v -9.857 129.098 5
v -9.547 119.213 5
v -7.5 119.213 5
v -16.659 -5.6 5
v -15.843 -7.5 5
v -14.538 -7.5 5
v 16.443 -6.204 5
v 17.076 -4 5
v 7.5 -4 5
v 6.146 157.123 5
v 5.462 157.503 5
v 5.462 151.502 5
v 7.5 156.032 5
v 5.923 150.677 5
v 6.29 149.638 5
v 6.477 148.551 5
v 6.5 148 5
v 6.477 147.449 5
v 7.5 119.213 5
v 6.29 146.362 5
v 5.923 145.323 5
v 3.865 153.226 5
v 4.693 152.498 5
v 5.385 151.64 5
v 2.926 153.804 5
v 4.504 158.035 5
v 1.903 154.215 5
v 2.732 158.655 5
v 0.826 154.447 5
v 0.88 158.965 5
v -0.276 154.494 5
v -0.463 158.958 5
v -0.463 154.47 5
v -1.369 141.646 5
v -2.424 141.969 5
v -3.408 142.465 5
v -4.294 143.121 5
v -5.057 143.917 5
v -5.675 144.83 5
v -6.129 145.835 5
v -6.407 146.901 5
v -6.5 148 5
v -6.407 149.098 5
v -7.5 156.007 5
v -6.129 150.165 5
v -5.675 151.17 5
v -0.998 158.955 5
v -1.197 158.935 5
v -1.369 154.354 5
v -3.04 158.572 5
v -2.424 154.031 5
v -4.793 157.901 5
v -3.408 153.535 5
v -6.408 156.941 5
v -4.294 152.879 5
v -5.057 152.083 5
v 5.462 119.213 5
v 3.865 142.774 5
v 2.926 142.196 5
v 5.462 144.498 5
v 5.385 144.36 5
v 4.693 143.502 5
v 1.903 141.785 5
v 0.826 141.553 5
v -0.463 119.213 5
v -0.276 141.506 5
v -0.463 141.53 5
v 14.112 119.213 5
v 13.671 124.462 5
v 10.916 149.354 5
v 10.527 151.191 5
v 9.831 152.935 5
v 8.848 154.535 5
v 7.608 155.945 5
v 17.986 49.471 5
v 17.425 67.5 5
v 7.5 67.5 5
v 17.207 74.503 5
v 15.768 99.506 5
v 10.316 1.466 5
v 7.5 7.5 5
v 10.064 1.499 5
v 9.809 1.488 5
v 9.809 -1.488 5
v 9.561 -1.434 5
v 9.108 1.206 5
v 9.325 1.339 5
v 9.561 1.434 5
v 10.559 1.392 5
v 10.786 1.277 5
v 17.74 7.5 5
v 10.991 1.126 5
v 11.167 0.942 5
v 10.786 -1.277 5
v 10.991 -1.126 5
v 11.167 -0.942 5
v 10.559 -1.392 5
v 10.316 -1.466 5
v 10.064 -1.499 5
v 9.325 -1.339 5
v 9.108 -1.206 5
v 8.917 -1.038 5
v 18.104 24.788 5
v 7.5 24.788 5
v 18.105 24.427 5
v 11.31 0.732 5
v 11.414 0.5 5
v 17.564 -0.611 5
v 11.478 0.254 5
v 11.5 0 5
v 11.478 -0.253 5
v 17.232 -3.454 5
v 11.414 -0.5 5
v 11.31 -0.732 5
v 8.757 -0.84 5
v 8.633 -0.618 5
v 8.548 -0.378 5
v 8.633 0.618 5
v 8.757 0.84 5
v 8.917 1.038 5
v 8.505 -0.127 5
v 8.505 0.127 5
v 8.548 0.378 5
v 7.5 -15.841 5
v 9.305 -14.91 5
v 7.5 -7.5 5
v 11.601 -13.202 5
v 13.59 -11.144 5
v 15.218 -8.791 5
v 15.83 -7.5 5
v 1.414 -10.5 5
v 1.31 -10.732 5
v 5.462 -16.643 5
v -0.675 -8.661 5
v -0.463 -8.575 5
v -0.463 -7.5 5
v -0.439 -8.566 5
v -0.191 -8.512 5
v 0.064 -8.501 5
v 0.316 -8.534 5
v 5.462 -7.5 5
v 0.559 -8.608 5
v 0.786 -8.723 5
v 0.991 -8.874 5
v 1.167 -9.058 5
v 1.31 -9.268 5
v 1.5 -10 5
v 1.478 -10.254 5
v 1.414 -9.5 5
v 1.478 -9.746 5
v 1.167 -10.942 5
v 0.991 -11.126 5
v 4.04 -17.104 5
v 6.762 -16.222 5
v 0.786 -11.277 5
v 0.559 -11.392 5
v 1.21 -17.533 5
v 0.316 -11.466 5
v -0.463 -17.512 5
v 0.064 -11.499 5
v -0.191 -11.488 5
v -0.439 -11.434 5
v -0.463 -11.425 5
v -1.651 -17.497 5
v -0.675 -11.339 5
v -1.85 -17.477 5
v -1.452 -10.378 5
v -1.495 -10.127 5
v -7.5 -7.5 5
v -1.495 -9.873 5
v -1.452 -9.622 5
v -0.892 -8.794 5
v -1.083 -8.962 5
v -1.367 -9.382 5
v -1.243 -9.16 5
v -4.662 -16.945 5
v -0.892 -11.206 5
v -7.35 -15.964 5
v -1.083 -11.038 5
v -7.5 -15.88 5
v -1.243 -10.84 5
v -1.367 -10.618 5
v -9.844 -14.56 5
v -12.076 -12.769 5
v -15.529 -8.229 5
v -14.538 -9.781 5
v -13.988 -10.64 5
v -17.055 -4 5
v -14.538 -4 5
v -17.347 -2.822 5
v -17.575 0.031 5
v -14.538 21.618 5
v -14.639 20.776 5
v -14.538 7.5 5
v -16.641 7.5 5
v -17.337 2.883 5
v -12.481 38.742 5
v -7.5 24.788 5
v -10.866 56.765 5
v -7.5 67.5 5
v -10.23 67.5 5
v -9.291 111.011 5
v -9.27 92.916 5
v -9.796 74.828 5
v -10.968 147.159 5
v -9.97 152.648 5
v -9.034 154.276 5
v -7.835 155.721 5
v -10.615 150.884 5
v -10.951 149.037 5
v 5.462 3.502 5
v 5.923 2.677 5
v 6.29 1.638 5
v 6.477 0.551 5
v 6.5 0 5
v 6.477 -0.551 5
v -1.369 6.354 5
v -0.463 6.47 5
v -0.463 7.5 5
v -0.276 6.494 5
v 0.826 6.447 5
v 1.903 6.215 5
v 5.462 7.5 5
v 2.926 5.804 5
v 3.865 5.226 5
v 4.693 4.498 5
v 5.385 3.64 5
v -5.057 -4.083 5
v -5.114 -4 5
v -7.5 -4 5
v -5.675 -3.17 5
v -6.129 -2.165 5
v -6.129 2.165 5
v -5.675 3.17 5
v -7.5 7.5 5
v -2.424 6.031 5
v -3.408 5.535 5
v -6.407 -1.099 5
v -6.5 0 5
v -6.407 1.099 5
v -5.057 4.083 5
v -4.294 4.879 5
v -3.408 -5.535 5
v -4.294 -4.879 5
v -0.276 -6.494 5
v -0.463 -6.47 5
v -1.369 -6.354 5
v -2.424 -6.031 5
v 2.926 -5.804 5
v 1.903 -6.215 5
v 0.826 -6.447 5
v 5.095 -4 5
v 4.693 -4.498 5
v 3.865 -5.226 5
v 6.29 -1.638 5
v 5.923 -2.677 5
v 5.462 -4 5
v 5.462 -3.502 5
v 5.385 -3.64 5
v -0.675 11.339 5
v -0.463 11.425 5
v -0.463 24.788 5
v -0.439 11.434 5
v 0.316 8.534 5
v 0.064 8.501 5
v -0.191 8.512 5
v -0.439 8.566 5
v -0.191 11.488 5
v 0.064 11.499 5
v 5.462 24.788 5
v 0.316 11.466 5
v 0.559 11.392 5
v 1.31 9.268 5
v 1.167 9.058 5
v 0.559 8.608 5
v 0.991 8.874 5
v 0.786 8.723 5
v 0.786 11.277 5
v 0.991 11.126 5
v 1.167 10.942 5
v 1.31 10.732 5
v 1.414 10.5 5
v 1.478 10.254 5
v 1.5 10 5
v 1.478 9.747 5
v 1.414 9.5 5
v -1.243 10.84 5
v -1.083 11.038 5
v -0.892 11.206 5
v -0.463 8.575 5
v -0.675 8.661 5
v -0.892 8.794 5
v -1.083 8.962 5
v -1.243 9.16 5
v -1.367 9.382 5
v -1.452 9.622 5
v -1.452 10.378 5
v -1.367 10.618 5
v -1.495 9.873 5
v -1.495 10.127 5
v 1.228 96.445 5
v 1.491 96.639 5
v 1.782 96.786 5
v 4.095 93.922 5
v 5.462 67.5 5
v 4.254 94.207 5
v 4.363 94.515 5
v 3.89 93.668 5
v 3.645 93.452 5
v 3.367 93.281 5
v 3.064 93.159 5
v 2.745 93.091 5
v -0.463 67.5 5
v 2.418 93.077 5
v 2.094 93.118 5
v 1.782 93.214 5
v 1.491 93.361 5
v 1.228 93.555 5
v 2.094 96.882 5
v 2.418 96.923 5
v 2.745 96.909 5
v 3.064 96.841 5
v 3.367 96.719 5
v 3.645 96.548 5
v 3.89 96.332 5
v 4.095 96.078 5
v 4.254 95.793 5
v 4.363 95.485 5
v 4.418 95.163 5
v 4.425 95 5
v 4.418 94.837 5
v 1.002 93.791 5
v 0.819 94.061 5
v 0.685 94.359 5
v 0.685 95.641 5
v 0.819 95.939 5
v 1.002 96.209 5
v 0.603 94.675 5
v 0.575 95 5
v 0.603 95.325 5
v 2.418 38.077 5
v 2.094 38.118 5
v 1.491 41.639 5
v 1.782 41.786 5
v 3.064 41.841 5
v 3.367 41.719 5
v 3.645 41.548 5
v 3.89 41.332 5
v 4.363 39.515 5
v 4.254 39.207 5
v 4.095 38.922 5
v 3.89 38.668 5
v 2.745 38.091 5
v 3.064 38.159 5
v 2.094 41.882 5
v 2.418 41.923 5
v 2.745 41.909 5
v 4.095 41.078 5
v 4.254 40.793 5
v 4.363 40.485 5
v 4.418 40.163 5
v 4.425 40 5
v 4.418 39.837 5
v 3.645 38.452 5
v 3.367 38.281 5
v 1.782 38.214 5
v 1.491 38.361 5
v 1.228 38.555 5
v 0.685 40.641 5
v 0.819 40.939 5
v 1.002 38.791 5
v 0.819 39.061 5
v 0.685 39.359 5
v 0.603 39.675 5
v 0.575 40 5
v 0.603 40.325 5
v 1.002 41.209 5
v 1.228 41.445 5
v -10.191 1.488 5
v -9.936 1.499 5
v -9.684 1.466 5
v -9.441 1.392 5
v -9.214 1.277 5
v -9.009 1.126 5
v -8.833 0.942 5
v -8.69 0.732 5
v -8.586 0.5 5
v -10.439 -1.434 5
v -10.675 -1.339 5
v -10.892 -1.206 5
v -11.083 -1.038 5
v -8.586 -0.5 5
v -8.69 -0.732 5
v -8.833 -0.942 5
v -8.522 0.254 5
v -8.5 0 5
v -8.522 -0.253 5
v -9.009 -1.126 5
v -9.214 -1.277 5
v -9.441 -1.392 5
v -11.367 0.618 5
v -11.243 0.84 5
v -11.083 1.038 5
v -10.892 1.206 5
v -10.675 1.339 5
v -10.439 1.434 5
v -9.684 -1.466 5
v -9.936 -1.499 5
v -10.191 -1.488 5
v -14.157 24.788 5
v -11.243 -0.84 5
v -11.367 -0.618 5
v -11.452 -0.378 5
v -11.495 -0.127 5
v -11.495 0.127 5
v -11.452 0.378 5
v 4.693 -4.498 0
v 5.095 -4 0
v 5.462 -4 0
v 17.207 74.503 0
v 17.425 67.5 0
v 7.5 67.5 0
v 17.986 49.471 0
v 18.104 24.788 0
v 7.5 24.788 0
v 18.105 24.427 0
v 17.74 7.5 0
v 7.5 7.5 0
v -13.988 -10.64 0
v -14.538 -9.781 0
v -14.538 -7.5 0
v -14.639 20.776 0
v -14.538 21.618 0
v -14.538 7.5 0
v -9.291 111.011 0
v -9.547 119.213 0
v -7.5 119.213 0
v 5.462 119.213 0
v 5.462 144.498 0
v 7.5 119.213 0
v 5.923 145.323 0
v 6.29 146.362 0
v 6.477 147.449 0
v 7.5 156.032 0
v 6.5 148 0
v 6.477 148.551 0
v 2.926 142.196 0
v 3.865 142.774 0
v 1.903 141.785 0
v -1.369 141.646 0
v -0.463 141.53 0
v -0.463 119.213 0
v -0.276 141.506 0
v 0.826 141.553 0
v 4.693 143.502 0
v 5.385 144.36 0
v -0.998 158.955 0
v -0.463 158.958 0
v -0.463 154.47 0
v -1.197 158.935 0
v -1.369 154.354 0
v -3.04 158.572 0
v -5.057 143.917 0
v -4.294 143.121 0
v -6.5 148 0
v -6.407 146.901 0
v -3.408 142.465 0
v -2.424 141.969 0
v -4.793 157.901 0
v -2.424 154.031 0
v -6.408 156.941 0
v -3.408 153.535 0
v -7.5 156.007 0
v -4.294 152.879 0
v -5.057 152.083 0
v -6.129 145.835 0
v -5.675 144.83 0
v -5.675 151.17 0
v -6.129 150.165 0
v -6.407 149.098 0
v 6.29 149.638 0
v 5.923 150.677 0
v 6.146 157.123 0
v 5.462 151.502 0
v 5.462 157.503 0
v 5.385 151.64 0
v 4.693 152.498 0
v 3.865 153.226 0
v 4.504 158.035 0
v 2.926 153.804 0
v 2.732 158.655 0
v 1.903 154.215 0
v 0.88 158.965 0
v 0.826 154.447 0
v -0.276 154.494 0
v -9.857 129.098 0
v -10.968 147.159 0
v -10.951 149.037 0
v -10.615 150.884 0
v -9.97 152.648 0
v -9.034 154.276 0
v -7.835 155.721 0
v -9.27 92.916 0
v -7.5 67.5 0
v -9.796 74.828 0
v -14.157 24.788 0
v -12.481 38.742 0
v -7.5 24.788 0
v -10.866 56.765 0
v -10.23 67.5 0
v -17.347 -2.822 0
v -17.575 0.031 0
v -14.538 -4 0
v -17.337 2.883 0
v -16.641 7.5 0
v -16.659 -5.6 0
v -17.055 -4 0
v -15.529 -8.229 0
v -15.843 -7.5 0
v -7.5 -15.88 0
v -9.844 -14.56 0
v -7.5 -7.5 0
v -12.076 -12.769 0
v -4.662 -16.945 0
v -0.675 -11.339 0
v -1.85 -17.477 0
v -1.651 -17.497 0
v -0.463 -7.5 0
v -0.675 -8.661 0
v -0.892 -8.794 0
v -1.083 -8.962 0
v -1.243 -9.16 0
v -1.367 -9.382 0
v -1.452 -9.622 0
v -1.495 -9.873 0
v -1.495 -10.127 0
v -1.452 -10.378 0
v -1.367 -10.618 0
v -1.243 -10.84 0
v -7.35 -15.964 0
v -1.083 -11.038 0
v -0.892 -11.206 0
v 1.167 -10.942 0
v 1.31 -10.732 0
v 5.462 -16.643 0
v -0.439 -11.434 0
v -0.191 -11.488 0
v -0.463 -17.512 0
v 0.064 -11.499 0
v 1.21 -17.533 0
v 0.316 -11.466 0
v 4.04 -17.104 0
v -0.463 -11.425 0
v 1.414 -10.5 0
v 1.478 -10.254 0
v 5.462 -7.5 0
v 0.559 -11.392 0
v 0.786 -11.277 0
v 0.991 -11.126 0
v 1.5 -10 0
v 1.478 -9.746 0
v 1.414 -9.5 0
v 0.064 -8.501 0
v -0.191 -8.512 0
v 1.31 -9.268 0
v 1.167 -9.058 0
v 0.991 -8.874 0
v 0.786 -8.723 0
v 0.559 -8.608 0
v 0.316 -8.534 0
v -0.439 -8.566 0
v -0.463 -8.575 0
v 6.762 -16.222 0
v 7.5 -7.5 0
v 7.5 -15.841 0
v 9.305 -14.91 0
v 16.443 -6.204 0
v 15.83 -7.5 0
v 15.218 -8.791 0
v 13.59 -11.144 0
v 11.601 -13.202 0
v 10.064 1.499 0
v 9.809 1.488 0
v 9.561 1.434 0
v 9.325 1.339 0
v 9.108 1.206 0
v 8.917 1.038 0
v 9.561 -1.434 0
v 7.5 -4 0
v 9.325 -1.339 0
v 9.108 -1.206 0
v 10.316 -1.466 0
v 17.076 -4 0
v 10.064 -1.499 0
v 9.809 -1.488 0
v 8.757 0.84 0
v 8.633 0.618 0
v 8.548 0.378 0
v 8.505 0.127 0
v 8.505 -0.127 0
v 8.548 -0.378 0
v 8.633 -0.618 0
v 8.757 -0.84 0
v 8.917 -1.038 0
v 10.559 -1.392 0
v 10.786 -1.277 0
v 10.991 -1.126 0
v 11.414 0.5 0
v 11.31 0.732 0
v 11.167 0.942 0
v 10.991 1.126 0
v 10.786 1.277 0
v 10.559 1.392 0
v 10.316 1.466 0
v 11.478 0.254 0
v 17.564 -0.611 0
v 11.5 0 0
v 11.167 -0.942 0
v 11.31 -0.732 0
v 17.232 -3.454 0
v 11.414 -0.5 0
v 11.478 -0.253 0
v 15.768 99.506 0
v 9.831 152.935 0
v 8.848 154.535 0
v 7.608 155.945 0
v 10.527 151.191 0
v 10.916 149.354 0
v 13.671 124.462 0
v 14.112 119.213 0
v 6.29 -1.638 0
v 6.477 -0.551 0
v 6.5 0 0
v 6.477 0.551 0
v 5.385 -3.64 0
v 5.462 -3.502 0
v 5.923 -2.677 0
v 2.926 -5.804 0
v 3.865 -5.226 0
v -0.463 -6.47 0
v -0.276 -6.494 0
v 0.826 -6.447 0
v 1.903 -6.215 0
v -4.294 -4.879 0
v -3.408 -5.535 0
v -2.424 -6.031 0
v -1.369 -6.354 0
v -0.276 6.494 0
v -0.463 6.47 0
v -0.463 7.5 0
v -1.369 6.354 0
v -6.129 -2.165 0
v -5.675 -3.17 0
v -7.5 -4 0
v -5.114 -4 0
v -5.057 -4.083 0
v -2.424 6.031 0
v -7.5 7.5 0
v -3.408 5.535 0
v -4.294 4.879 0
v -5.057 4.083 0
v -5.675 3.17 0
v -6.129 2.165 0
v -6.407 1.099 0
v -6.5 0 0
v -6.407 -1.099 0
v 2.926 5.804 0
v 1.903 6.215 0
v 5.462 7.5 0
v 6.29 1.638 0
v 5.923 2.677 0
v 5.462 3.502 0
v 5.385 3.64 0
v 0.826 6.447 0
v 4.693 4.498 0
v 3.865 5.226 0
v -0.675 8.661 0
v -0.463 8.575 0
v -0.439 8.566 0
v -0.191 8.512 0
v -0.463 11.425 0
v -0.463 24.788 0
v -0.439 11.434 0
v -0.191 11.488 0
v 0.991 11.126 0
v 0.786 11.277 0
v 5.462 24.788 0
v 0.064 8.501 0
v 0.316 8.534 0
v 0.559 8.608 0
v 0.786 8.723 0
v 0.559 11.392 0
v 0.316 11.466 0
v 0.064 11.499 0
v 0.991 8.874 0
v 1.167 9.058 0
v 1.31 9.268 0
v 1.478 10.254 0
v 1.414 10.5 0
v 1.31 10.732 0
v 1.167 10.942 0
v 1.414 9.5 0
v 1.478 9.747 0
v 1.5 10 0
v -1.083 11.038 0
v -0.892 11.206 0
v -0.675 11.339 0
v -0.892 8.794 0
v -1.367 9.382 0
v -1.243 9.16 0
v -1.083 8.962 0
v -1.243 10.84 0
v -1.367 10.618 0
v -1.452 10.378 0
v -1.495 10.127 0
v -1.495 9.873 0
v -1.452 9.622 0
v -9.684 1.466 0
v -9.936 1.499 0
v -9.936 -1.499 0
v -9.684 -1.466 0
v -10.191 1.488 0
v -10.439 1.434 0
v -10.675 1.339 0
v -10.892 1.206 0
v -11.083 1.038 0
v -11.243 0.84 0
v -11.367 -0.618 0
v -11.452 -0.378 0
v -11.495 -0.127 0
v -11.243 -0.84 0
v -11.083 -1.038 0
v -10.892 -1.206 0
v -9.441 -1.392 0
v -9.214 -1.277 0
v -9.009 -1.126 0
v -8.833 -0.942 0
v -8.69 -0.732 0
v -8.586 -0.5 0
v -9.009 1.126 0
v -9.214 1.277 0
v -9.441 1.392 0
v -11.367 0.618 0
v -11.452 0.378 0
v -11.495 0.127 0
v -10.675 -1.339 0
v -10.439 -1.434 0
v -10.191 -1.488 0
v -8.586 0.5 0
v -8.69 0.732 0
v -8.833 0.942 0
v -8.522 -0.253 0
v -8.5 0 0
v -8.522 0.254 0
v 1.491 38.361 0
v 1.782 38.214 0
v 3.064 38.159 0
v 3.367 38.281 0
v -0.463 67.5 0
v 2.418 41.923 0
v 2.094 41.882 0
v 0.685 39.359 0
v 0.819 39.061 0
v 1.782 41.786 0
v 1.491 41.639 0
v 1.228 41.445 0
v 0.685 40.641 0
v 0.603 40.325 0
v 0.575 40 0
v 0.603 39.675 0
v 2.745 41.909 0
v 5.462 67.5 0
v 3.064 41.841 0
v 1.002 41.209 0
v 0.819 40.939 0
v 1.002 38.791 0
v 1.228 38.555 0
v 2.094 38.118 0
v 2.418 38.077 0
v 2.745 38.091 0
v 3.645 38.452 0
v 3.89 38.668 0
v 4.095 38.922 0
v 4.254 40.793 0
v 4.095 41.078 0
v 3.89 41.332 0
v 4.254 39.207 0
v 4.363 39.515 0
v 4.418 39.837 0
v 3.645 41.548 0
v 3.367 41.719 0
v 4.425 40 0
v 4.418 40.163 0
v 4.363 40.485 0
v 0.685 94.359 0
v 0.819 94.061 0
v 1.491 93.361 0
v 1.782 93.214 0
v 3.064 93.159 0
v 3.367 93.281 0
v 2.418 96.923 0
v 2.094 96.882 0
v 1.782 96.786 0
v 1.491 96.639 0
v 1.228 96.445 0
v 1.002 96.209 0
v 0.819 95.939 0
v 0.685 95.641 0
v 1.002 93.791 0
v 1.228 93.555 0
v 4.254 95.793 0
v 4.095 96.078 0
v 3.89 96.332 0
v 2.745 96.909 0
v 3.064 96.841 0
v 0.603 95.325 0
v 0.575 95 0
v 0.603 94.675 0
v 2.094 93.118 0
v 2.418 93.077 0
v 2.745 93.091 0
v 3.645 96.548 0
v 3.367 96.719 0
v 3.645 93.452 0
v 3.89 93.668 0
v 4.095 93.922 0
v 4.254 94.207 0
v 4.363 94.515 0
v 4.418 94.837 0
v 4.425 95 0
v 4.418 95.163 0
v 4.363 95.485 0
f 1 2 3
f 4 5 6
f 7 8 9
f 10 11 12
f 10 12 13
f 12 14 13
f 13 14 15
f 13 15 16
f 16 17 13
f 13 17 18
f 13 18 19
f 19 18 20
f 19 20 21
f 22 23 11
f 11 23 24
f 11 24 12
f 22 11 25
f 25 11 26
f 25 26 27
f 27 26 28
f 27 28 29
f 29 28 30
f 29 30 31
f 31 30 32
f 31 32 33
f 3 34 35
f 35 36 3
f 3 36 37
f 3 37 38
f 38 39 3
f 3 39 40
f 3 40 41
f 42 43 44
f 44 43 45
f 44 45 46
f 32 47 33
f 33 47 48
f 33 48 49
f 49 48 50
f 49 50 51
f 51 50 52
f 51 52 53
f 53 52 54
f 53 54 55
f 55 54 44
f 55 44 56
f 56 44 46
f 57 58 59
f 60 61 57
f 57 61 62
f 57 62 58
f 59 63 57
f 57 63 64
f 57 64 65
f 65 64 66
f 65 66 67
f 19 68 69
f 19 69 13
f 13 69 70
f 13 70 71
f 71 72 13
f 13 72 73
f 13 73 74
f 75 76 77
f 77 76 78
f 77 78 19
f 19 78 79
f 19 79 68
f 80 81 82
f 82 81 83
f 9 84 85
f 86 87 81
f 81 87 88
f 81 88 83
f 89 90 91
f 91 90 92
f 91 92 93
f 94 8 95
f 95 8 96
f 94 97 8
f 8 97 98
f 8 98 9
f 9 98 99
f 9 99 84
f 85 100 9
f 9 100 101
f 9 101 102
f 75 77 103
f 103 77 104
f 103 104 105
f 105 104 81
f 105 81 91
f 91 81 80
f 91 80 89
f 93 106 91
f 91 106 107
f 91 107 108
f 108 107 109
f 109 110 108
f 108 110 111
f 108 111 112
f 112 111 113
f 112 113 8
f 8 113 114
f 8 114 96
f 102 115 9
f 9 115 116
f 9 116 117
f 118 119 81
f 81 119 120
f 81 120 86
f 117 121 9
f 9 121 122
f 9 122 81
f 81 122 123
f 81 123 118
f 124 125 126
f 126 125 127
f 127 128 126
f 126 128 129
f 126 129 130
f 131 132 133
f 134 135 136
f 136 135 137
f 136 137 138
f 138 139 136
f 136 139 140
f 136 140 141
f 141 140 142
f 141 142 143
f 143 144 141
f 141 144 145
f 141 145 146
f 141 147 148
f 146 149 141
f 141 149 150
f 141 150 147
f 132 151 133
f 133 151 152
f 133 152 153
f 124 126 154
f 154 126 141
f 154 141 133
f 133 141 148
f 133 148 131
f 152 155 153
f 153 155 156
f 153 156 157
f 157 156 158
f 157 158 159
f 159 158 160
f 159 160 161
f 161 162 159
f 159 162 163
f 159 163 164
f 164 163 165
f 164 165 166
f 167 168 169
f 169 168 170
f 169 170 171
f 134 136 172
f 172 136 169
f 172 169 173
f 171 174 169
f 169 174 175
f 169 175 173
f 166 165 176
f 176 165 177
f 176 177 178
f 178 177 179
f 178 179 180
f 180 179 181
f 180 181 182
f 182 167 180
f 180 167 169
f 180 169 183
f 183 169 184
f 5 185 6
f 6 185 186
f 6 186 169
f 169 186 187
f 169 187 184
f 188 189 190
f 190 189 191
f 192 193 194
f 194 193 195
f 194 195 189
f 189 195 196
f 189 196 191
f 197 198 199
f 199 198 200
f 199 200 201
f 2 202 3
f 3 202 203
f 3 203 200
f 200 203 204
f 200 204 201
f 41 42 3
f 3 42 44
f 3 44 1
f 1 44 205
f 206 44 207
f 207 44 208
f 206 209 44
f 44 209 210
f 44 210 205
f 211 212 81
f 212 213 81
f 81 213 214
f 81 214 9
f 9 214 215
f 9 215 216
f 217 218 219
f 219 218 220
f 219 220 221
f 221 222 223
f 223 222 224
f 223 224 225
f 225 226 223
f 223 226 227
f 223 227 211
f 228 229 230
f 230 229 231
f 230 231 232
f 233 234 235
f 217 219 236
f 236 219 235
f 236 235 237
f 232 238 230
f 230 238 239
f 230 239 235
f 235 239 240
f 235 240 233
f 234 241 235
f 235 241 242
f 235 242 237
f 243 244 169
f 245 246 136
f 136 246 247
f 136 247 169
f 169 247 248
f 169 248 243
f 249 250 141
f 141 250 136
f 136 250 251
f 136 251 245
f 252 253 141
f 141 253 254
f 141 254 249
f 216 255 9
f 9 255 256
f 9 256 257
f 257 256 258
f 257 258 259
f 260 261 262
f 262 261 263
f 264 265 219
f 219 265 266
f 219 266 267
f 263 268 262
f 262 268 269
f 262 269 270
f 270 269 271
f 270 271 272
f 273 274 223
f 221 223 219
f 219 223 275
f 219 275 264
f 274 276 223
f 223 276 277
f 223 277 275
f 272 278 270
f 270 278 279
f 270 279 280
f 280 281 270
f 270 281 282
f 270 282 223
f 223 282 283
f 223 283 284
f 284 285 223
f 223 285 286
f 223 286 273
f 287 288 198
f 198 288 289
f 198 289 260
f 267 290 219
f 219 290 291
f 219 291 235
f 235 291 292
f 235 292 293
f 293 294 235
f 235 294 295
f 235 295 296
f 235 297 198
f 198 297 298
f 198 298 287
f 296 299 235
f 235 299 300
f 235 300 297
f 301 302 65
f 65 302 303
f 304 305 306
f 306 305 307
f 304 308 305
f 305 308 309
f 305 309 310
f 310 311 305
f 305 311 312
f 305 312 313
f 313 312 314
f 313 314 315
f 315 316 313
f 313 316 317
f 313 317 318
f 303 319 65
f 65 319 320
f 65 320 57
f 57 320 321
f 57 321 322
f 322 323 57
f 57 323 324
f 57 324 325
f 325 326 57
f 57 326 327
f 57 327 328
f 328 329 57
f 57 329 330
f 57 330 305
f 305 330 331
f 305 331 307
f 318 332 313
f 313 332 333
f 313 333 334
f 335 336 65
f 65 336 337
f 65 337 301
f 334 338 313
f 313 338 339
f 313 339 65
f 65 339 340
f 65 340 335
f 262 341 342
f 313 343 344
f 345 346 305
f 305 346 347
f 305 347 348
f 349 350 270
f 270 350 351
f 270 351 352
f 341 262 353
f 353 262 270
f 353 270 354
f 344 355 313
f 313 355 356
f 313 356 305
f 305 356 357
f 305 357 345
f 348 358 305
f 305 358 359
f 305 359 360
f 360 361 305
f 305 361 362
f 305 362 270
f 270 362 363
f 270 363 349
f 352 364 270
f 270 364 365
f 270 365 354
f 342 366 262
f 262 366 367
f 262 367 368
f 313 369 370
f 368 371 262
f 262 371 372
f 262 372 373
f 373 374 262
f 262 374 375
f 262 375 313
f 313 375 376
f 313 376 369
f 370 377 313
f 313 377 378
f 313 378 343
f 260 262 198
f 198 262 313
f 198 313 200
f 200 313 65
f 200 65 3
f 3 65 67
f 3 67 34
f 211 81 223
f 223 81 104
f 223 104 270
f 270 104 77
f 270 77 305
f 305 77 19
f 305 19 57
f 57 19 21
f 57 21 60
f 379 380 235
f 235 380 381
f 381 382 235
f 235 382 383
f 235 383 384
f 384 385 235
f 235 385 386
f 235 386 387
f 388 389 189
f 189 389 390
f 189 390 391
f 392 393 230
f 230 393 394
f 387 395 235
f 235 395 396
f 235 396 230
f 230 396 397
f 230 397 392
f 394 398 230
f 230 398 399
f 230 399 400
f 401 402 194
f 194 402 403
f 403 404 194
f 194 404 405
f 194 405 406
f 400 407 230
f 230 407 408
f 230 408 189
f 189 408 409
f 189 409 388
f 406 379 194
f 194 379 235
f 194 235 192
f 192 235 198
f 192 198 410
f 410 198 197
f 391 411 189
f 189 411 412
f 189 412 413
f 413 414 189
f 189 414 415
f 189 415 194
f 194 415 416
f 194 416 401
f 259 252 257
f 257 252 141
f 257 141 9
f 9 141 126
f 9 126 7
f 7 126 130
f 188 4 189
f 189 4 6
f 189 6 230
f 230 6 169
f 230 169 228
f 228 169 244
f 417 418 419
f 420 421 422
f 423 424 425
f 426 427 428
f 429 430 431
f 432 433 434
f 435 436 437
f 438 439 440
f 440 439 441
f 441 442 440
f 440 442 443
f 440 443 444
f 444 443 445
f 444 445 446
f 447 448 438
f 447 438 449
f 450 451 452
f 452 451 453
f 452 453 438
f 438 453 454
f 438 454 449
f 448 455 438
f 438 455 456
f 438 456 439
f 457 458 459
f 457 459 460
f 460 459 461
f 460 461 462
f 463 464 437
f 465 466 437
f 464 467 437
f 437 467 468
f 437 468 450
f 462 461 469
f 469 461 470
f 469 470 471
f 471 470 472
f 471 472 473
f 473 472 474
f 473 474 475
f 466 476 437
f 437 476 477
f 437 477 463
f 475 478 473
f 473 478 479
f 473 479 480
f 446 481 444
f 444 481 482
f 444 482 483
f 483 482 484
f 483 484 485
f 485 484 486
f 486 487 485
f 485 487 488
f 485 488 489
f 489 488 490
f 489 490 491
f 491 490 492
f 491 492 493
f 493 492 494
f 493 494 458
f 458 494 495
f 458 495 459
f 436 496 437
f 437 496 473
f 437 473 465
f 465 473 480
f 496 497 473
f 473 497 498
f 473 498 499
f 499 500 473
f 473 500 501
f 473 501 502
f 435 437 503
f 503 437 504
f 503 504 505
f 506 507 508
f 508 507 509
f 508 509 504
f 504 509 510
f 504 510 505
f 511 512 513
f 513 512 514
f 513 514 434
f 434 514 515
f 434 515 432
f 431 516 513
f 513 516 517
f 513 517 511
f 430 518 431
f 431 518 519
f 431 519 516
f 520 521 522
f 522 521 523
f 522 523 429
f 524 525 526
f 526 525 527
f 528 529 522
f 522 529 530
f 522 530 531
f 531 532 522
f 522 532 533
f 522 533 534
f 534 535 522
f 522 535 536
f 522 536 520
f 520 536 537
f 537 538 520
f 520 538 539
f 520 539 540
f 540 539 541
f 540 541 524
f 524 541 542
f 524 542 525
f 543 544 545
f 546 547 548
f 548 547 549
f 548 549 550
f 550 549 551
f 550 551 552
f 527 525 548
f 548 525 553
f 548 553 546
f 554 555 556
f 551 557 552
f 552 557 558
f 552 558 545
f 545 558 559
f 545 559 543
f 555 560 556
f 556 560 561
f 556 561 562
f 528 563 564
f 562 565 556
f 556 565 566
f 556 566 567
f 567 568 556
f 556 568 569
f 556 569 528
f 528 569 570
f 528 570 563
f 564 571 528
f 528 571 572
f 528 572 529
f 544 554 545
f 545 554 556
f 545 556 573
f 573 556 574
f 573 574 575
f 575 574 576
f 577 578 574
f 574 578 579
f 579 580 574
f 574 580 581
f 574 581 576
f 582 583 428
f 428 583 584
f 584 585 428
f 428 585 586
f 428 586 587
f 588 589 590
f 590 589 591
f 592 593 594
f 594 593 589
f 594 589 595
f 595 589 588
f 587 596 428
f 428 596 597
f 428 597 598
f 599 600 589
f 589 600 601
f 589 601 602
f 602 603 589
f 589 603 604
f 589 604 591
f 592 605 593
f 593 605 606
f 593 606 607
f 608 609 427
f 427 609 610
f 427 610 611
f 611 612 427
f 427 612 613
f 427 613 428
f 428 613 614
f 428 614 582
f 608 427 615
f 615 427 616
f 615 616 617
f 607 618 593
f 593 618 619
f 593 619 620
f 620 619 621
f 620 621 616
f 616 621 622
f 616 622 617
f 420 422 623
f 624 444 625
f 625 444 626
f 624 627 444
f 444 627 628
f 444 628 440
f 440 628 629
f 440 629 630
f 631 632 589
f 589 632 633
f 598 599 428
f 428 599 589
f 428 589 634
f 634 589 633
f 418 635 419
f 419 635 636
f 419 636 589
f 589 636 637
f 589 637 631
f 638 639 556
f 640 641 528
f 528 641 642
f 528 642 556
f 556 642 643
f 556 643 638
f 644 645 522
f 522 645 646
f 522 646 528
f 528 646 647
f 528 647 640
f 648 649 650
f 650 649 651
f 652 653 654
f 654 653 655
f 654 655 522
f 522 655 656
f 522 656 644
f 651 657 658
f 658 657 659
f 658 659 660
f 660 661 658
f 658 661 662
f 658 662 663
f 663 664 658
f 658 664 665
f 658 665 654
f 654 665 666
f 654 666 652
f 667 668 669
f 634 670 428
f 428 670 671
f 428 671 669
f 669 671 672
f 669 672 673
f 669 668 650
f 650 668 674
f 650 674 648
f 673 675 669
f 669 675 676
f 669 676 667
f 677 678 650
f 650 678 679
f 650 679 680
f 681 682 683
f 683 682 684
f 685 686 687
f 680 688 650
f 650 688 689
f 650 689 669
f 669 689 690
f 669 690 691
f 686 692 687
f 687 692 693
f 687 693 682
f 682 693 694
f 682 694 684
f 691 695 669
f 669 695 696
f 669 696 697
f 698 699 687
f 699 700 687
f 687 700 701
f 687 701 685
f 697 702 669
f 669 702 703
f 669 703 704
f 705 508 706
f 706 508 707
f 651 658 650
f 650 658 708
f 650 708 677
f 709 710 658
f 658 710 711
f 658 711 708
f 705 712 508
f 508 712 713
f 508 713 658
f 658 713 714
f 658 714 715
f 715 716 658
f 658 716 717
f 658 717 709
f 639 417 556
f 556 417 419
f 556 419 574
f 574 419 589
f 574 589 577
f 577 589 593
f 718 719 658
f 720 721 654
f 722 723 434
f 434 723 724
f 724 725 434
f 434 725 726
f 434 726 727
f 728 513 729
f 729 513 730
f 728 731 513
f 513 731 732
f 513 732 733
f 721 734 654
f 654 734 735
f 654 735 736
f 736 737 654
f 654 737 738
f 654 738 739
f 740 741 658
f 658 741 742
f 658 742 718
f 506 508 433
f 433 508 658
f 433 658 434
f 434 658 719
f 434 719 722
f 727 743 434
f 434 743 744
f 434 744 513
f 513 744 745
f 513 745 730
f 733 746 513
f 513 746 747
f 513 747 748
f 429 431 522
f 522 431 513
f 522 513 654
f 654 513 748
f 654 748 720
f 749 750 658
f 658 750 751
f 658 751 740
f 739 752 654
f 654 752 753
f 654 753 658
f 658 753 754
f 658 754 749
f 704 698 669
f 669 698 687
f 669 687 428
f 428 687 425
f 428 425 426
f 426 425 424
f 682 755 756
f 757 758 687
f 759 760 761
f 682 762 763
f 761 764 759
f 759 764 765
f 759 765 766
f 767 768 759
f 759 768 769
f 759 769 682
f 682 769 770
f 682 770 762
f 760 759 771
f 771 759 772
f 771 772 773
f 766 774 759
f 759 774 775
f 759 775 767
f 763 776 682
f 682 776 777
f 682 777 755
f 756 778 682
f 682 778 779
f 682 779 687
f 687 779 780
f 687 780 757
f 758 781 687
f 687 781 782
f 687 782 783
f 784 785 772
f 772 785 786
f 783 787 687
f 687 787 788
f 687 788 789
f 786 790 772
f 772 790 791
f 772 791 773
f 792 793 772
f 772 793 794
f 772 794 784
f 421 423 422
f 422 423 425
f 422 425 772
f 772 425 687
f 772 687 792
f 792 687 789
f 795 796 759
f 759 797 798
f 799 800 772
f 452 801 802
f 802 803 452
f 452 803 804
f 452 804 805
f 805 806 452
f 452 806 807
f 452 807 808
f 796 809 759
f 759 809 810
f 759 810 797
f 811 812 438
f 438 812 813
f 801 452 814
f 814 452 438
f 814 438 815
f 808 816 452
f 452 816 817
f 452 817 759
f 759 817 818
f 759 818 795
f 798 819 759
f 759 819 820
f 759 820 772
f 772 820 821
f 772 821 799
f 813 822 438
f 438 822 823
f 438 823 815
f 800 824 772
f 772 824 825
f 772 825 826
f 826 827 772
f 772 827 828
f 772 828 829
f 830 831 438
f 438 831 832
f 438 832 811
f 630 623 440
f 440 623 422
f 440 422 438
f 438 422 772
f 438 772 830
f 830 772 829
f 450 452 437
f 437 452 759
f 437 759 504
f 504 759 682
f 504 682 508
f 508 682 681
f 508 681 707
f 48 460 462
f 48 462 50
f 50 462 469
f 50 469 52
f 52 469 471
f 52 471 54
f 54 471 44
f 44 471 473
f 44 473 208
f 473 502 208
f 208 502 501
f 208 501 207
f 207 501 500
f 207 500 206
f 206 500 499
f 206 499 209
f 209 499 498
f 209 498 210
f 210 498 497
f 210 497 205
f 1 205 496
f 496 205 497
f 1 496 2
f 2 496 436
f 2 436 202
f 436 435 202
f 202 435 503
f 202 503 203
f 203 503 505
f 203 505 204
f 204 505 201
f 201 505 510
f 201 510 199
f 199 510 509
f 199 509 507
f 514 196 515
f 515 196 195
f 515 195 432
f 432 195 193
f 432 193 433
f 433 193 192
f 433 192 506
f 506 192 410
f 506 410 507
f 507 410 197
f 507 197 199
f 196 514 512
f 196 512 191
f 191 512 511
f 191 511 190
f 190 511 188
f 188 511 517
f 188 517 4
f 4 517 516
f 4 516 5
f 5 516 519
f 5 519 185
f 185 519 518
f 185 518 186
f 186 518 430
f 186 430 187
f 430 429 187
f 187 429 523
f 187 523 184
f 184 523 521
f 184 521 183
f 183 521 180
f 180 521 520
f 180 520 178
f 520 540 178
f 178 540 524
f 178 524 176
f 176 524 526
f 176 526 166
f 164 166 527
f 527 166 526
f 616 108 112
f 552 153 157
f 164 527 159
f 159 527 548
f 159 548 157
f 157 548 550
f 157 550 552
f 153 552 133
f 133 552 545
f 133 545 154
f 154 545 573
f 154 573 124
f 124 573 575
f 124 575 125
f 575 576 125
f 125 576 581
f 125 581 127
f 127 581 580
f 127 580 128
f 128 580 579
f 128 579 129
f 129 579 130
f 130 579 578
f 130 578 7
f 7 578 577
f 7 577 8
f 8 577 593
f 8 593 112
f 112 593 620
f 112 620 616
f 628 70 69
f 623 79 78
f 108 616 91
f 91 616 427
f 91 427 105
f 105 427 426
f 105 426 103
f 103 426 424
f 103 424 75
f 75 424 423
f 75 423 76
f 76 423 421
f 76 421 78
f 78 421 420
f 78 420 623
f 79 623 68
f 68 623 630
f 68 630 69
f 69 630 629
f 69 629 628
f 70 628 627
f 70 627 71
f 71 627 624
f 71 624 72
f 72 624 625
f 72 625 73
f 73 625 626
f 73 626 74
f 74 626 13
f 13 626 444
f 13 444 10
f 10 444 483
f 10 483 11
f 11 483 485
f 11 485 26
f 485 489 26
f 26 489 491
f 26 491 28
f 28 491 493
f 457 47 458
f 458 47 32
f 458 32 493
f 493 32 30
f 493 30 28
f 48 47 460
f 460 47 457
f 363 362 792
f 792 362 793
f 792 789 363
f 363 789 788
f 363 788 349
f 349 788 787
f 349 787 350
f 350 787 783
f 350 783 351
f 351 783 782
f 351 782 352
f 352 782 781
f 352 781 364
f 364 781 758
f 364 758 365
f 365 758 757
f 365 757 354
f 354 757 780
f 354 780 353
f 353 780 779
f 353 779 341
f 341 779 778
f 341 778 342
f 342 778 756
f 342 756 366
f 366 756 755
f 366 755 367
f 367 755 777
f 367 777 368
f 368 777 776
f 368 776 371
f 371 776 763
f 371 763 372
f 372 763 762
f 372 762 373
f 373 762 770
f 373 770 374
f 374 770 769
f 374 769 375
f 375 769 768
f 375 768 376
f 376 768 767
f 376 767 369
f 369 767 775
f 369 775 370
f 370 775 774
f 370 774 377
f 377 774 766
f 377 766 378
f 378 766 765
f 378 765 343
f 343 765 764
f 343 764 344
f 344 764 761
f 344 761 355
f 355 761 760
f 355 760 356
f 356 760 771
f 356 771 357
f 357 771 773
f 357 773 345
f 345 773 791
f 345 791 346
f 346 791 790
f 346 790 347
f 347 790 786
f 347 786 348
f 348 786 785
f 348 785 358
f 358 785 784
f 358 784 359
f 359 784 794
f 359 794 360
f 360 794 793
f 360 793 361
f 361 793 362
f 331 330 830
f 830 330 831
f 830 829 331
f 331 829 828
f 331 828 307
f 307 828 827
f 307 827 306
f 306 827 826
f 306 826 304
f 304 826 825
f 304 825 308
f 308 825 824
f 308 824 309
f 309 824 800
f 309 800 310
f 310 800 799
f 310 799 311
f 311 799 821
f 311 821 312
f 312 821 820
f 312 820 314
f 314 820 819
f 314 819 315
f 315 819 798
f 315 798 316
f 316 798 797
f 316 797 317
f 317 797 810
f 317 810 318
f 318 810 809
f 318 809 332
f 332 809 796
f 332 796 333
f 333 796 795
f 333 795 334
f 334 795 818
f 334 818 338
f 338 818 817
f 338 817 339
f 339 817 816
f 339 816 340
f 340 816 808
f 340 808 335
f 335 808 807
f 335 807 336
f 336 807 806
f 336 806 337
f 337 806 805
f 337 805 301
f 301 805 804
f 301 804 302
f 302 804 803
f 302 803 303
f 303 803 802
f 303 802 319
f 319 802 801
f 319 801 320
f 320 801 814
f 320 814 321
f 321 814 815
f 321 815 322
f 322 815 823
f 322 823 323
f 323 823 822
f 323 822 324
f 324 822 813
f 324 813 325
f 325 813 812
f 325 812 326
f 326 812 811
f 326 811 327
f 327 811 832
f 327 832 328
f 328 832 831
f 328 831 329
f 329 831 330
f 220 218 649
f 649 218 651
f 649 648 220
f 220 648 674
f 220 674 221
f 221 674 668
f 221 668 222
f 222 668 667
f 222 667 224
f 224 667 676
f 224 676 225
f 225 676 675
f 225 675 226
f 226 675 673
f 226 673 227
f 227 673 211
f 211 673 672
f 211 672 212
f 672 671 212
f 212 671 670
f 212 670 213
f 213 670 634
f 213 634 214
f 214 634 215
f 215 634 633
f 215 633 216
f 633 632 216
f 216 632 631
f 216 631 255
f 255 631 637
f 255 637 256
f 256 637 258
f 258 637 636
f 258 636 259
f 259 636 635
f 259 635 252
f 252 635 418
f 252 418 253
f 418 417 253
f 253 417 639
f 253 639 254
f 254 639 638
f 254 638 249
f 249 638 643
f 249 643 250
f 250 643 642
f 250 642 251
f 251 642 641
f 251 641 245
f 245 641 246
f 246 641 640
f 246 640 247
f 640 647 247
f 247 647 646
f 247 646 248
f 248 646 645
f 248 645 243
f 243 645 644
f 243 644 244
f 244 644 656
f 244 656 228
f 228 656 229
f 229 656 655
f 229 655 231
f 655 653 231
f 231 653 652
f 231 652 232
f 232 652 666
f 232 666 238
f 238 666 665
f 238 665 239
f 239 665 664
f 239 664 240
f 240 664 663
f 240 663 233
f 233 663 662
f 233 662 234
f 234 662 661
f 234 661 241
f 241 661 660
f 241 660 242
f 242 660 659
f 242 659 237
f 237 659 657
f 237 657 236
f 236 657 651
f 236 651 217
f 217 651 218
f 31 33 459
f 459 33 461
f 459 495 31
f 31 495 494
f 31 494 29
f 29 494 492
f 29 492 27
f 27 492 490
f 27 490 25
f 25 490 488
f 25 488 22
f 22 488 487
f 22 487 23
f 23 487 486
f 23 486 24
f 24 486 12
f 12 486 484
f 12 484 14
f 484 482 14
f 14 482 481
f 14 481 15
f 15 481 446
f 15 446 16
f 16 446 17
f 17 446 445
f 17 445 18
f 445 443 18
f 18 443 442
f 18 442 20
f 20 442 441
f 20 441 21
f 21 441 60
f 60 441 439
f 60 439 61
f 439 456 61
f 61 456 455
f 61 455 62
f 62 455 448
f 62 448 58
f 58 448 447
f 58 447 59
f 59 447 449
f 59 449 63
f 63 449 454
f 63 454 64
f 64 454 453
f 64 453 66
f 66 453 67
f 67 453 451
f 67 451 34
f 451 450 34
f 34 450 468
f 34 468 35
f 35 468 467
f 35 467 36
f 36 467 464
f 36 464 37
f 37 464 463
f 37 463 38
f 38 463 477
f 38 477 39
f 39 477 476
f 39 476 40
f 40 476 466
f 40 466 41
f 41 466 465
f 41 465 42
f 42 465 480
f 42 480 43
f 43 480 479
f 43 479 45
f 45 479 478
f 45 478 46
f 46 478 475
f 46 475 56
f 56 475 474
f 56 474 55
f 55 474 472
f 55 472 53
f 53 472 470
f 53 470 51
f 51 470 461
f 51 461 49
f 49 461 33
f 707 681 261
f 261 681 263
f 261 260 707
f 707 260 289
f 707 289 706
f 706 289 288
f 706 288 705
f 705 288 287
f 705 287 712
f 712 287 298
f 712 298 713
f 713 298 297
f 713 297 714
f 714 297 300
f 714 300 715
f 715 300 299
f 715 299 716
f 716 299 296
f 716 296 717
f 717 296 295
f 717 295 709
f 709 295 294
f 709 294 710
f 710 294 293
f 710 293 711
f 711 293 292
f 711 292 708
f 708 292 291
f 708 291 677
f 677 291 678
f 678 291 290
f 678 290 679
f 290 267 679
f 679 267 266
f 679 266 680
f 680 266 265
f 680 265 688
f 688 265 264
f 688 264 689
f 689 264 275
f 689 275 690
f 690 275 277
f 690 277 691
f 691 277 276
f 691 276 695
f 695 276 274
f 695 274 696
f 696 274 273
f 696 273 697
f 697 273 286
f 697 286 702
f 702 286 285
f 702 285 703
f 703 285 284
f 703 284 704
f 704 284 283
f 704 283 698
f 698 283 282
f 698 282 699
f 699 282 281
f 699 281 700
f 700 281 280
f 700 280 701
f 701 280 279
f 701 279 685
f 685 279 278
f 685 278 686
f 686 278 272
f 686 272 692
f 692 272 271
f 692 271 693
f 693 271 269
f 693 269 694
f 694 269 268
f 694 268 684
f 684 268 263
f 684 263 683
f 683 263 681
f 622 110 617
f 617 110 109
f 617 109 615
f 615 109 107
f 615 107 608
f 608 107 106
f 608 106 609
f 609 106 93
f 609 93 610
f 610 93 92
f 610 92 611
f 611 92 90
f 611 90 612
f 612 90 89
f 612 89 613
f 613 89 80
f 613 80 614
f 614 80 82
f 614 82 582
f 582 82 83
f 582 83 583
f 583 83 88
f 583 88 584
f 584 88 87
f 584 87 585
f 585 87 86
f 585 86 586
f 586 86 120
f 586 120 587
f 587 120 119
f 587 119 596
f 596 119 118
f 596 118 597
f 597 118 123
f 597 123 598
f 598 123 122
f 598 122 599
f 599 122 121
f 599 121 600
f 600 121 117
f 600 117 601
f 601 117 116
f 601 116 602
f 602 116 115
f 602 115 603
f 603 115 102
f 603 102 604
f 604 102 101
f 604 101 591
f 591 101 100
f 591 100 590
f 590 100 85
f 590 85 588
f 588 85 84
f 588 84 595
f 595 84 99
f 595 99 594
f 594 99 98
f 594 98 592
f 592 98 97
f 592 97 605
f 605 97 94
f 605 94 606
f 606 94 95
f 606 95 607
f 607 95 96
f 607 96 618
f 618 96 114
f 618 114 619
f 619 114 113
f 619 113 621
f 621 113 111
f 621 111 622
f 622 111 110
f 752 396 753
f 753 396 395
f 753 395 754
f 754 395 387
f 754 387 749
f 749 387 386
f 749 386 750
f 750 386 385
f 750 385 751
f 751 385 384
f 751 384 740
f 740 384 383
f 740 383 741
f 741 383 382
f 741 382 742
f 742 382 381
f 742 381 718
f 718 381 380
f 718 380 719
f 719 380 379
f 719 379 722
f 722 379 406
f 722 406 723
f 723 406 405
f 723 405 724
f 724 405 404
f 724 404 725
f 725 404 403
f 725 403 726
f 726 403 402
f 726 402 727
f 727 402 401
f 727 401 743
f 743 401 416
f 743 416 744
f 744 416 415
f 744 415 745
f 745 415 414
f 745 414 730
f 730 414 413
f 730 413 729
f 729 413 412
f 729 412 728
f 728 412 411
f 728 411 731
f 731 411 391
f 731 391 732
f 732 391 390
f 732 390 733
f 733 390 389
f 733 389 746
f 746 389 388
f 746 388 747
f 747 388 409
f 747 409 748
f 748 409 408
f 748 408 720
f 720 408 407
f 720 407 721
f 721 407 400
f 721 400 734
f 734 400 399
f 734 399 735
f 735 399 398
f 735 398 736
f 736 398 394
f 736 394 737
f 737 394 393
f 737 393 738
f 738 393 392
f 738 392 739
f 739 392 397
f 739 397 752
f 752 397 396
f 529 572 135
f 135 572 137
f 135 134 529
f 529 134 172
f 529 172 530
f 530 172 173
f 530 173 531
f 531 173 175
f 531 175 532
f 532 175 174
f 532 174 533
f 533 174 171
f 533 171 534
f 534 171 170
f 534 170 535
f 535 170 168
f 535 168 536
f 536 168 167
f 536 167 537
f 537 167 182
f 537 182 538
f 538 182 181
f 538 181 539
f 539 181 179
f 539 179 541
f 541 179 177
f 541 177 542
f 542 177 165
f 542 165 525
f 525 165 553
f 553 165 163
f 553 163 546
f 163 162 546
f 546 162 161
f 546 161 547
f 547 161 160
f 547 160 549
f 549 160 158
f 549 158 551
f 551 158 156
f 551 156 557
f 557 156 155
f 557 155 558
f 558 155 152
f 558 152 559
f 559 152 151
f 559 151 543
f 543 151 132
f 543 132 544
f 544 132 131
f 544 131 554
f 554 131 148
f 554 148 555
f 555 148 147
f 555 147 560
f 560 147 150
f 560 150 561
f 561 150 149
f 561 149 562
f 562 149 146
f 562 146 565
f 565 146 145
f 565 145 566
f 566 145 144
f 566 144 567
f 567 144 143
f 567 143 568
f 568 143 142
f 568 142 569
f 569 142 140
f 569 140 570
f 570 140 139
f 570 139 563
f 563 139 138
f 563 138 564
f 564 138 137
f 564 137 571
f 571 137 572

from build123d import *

# Parameters (mm, degrees)
SKETCH_1_R          = 1.925
SKETCH_1_R_2        = 0.925
SKETCH_1_R_3        = 6.5
EXTRUDE_1_DEPTH     = 5
SKETCH_2_R          = 1.5
CUT_EXTRUDE_1_DEPTH = 161.109426861


with BuildPart() as part:
    # 草图1 → 凸台-拉伸1 (new body)
    with BuildSketch(Plane.XY):
        with BuildLine():
            Line((-1.197146646, 158.934662313), (-0.998147001, 158.954620147))
            ThreePointArc((-0.998147001, 158.954620147), (6.901917658, 156.565251464), (10.916367847, 149.353851183))
            ThreePointArc((10.916367847, 149.353851183), (17.20705989, 74.502805076), (17.564366606, -0.61126978))
            ThreePointArc((17.564366606, -0.61126978), (11.601405763, -13.20181841), (-1.651060868, -17.497274731))
            Line((-1.651060868, -17.497274731), (-1.850065436, -17.477353429))
            ThreePointArc((-1.850065436, -17.477353429), (-13.988103687, -10.64018704), (-17.337003373, 2.882523033))
            ThreePointArc((-17.337003373, 2.882523033), (-9.795741354, 74.828468127), (-10.96780908, 147.159069574))
            ThreePointArc((-10.96780908, 147.159069574), (-8.465381447, 155.024052744), (-1.197146646, 158.934662313))
        make_face()
        with Locations((2.5, 40)):
            Circle(SKETCH_1_R, mode=Mode.SUBTRACT)
        with Locations((2.5, 95)):
            Circle(SKETCH_1_R, mode=Mode.SUBTRACT)
        with Locations((10, 0)):
            Circle(SKETCH_1_R_2, mode=Mode.SUBTRACT)
        with Locations((0, -10)):
            Circle(SKETCH_1_R_2, mode=Mode.SUBTRACT)
        with Locations((0, 10)):
            Circle(SKETCH_1_R_2, mode=Mode.SUBTRACT)
        with Locations((-10, 0)):
            Circle(SKETCH_1_R_2, mode=Mode.SUBTRACT)
        Circle(SKETCH_1_R_3, mode=Mode.SUBTRACT)
        with Locations((0, 148)):
            Circle(SKETCH_1_R_3, mode=Mode.SUBTRACT)
    extrude(amount=EXTRUDE_1_DEPTH)

    # 草图2 → 切除-拉伸1 (cut, through all)
    with BuildSketch(Plane.XY.offset(5)):
        with Locations((0, 10)):
            Circle(SKETCH_2_R)
        with Locations((10, 0)):
            Circle(SKETCH_2_R)
        with Locations((-10, 0)):
            Circle(SKETCH_2_R)
        with Locations((0, -10)):
            Circle(SKETCH_2_R)
    extrude(amount=-CUT_EXTRUDE_1_DEPTH, mode=Mode.SUBTRACT)


solid = part.part
